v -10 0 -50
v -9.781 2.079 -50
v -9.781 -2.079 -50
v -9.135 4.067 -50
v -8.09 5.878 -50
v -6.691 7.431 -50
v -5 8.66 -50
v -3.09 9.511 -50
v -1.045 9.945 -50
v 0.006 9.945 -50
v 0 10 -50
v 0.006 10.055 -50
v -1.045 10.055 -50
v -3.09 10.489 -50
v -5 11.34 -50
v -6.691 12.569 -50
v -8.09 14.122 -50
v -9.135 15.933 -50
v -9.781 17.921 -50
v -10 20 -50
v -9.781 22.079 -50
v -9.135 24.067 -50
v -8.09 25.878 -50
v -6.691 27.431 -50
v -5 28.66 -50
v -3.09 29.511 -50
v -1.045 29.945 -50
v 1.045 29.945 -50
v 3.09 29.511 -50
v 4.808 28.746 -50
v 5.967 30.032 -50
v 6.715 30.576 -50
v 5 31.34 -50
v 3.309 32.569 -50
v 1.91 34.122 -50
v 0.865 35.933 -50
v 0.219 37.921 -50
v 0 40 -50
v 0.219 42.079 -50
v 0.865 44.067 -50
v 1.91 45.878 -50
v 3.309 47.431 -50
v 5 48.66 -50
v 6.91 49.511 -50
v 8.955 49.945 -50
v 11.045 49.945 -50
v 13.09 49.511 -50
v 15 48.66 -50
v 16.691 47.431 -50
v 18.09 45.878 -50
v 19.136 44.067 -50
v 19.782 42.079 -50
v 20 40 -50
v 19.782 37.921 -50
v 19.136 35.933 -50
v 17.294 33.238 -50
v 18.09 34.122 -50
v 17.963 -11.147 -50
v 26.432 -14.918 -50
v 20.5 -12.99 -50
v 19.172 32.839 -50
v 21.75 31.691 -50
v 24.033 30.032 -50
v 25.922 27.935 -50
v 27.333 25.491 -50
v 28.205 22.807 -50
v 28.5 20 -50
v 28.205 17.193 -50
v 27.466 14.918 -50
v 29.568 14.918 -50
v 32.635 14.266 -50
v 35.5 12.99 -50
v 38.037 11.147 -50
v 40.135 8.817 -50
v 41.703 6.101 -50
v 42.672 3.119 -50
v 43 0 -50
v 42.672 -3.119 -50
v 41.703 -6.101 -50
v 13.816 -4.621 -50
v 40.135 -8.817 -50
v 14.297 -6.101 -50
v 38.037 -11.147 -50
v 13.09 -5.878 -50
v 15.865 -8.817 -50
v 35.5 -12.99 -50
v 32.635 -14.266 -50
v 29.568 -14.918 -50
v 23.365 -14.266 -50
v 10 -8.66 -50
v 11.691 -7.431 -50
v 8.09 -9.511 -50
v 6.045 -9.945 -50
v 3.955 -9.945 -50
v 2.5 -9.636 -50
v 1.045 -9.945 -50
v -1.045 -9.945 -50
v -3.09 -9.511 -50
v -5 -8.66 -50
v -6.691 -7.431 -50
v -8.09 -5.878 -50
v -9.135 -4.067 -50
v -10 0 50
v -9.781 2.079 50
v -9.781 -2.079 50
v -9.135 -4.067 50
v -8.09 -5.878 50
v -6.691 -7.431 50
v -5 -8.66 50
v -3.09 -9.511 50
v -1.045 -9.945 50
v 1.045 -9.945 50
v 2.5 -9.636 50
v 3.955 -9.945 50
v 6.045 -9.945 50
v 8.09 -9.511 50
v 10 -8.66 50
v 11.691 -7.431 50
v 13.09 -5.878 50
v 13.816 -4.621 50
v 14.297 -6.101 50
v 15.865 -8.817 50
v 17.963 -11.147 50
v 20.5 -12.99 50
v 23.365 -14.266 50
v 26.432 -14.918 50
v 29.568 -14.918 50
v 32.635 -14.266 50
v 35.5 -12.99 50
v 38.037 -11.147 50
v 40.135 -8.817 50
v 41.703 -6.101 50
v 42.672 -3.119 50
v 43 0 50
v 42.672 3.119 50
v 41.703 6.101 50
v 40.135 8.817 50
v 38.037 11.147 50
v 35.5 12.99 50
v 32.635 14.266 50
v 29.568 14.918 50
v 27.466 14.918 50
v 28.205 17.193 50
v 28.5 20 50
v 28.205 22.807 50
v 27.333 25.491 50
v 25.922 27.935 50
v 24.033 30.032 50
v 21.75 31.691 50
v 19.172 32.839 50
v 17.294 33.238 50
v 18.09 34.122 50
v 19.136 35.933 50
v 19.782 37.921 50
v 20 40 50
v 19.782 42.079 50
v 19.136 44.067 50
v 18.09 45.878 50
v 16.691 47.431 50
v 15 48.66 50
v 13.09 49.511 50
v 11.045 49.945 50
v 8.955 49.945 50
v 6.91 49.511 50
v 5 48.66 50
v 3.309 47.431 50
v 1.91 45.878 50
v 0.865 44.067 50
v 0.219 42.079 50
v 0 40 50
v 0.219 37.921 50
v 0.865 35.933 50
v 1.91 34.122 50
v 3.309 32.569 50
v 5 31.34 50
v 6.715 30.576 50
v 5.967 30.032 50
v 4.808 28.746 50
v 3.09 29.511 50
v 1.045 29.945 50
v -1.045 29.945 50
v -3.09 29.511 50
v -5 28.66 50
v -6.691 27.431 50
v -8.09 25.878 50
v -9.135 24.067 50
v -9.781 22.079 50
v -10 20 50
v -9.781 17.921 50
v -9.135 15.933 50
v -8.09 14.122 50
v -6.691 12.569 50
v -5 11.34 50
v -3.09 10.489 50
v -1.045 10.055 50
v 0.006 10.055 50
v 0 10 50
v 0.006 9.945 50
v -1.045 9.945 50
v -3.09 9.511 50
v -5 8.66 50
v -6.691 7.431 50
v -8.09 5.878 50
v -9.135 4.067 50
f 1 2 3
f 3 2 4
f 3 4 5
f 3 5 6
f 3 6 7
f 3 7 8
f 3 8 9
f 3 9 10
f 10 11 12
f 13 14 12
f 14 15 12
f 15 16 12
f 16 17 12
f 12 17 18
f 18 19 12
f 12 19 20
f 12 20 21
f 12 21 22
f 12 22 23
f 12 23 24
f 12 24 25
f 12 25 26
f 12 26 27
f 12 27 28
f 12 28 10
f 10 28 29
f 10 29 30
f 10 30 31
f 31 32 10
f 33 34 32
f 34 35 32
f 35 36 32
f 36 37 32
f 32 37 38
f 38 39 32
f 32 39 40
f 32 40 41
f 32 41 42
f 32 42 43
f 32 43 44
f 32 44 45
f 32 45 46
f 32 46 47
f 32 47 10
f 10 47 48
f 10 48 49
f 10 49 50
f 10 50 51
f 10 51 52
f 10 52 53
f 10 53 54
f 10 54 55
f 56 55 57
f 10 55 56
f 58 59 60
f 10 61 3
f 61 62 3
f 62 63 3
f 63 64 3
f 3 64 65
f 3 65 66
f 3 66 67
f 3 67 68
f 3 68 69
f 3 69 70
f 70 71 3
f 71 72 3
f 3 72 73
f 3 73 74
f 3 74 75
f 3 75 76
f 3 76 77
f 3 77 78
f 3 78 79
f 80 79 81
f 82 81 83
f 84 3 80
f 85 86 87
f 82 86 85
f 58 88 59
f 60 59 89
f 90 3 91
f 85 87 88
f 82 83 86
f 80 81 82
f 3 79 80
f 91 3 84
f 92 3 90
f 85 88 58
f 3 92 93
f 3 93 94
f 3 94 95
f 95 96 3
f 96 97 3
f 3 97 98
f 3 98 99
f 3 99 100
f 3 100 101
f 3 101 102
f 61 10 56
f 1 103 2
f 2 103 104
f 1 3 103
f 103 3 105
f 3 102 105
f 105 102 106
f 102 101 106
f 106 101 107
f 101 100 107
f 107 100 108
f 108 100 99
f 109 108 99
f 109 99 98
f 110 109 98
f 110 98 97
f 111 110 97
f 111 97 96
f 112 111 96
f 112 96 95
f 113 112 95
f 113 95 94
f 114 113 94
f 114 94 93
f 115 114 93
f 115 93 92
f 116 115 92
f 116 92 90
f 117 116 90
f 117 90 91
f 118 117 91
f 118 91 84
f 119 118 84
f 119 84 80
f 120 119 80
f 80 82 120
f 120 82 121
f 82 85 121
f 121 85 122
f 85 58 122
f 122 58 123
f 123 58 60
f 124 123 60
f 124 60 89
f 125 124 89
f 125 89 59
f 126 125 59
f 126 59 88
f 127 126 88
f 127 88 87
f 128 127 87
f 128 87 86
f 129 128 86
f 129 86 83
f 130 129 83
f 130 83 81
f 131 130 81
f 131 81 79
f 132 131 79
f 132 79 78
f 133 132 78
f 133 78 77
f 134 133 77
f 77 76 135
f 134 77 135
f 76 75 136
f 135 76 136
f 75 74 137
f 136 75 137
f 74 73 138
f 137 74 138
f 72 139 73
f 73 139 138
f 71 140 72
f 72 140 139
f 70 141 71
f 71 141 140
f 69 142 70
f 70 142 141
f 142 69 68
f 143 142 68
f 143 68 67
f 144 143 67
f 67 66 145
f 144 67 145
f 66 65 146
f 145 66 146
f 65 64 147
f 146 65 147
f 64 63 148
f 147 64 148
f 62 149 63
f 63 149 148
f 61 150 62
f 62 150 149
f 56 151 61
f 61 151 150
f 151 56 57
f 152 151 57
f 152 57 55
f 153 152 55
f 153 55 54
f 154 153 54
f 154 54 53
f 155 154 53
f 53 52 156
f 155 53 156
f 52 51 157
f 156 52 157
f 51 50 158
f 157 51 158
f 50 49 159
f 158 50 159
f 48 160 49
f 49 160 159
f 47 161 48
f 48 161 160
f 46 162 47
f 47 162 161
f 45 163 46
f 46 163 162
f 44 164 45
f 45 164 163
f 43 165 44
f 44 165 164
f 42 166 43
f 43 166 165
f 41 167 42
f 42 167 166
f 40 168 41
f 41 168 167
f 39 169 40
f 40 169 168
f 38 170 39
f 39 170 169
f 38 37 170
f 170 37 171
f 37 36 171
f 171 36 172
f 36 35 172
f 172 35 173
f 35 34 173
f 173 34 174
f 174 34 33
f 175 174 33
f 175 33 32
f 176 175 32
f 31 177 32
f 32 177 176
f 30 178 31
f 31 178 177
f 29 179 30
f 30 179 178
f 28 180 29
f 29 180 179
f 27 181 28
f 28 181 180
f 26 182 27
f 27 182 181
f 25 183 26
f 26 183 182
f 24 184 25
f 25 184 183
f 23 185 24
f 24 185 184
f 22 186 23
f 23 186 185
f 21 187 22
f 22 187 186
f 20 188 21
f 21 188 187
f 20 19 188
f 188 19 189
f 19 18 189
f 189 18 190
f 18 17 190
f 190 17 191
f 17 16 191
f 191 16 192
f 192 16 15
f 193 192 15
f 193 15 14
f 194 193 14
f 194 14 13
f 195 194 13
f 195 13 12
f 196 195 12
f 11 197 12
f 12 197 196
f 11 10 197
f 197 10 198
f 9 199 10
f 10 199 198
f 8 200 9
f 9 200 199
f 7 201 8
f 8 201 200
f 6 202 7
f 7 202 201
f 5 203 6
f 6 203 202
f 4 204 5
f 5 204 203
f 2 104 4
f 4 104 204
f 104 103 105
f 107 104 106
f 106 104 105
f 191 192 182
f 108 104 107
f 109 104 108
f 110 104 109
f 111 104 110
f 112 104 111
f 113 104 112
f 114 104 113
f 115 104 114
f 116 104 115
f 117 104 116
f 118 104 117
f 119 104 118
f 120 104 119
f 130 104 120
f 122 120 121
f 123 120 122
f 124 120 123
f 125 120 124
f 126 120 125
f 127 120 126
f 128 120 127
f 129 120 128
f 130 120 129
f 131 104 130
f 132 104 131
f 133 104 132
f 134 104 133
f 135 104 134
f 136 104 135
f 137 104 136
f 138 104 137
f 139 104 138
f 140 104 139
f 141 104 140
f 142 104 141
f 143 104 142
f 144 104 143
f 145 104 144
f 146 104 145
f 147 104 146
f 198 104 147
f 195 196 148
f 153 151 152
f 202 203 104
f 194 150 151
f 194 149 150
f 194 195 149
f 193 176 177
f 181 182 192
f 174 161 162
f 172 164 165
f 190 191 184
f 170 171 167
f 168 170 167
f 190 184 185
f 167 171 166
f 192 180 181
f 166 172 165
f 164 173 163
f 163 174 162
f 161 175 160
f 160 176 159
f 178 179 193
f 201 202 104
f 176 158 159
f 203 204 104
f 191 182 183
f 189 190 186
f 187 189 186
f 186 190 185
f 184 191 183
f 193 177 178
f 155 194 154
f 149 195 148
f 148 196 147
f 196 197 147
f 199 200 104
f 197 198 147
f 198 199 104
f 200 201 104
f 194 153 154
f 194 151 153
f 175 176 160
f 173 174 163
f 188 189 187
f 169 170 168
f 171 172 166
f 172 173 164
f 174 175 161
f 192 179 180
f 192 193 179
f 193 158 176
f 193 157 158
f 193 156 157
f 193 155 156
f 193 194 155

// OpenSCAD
union()
{
	cylinder(h = 100, d = 20, center = true);
	translate([5,0,0])
	cylinder(h = 100, d = 20, center = true);
	translate([15,20,0])
	cylinder(h = 100, d = 27, center = true);
	translate([10,10,0])
	cylinder(h = 100, d = 20, center = true);
	translate([0,20,0])
	cylinder(h = 100, d = 20, center = true);
	translate([10,40,0])
	cylinder(h = 100, d = 20, center = true);
	translate([28,0,0])
	cylinder(h = 100, d = 30, center = true);
}
